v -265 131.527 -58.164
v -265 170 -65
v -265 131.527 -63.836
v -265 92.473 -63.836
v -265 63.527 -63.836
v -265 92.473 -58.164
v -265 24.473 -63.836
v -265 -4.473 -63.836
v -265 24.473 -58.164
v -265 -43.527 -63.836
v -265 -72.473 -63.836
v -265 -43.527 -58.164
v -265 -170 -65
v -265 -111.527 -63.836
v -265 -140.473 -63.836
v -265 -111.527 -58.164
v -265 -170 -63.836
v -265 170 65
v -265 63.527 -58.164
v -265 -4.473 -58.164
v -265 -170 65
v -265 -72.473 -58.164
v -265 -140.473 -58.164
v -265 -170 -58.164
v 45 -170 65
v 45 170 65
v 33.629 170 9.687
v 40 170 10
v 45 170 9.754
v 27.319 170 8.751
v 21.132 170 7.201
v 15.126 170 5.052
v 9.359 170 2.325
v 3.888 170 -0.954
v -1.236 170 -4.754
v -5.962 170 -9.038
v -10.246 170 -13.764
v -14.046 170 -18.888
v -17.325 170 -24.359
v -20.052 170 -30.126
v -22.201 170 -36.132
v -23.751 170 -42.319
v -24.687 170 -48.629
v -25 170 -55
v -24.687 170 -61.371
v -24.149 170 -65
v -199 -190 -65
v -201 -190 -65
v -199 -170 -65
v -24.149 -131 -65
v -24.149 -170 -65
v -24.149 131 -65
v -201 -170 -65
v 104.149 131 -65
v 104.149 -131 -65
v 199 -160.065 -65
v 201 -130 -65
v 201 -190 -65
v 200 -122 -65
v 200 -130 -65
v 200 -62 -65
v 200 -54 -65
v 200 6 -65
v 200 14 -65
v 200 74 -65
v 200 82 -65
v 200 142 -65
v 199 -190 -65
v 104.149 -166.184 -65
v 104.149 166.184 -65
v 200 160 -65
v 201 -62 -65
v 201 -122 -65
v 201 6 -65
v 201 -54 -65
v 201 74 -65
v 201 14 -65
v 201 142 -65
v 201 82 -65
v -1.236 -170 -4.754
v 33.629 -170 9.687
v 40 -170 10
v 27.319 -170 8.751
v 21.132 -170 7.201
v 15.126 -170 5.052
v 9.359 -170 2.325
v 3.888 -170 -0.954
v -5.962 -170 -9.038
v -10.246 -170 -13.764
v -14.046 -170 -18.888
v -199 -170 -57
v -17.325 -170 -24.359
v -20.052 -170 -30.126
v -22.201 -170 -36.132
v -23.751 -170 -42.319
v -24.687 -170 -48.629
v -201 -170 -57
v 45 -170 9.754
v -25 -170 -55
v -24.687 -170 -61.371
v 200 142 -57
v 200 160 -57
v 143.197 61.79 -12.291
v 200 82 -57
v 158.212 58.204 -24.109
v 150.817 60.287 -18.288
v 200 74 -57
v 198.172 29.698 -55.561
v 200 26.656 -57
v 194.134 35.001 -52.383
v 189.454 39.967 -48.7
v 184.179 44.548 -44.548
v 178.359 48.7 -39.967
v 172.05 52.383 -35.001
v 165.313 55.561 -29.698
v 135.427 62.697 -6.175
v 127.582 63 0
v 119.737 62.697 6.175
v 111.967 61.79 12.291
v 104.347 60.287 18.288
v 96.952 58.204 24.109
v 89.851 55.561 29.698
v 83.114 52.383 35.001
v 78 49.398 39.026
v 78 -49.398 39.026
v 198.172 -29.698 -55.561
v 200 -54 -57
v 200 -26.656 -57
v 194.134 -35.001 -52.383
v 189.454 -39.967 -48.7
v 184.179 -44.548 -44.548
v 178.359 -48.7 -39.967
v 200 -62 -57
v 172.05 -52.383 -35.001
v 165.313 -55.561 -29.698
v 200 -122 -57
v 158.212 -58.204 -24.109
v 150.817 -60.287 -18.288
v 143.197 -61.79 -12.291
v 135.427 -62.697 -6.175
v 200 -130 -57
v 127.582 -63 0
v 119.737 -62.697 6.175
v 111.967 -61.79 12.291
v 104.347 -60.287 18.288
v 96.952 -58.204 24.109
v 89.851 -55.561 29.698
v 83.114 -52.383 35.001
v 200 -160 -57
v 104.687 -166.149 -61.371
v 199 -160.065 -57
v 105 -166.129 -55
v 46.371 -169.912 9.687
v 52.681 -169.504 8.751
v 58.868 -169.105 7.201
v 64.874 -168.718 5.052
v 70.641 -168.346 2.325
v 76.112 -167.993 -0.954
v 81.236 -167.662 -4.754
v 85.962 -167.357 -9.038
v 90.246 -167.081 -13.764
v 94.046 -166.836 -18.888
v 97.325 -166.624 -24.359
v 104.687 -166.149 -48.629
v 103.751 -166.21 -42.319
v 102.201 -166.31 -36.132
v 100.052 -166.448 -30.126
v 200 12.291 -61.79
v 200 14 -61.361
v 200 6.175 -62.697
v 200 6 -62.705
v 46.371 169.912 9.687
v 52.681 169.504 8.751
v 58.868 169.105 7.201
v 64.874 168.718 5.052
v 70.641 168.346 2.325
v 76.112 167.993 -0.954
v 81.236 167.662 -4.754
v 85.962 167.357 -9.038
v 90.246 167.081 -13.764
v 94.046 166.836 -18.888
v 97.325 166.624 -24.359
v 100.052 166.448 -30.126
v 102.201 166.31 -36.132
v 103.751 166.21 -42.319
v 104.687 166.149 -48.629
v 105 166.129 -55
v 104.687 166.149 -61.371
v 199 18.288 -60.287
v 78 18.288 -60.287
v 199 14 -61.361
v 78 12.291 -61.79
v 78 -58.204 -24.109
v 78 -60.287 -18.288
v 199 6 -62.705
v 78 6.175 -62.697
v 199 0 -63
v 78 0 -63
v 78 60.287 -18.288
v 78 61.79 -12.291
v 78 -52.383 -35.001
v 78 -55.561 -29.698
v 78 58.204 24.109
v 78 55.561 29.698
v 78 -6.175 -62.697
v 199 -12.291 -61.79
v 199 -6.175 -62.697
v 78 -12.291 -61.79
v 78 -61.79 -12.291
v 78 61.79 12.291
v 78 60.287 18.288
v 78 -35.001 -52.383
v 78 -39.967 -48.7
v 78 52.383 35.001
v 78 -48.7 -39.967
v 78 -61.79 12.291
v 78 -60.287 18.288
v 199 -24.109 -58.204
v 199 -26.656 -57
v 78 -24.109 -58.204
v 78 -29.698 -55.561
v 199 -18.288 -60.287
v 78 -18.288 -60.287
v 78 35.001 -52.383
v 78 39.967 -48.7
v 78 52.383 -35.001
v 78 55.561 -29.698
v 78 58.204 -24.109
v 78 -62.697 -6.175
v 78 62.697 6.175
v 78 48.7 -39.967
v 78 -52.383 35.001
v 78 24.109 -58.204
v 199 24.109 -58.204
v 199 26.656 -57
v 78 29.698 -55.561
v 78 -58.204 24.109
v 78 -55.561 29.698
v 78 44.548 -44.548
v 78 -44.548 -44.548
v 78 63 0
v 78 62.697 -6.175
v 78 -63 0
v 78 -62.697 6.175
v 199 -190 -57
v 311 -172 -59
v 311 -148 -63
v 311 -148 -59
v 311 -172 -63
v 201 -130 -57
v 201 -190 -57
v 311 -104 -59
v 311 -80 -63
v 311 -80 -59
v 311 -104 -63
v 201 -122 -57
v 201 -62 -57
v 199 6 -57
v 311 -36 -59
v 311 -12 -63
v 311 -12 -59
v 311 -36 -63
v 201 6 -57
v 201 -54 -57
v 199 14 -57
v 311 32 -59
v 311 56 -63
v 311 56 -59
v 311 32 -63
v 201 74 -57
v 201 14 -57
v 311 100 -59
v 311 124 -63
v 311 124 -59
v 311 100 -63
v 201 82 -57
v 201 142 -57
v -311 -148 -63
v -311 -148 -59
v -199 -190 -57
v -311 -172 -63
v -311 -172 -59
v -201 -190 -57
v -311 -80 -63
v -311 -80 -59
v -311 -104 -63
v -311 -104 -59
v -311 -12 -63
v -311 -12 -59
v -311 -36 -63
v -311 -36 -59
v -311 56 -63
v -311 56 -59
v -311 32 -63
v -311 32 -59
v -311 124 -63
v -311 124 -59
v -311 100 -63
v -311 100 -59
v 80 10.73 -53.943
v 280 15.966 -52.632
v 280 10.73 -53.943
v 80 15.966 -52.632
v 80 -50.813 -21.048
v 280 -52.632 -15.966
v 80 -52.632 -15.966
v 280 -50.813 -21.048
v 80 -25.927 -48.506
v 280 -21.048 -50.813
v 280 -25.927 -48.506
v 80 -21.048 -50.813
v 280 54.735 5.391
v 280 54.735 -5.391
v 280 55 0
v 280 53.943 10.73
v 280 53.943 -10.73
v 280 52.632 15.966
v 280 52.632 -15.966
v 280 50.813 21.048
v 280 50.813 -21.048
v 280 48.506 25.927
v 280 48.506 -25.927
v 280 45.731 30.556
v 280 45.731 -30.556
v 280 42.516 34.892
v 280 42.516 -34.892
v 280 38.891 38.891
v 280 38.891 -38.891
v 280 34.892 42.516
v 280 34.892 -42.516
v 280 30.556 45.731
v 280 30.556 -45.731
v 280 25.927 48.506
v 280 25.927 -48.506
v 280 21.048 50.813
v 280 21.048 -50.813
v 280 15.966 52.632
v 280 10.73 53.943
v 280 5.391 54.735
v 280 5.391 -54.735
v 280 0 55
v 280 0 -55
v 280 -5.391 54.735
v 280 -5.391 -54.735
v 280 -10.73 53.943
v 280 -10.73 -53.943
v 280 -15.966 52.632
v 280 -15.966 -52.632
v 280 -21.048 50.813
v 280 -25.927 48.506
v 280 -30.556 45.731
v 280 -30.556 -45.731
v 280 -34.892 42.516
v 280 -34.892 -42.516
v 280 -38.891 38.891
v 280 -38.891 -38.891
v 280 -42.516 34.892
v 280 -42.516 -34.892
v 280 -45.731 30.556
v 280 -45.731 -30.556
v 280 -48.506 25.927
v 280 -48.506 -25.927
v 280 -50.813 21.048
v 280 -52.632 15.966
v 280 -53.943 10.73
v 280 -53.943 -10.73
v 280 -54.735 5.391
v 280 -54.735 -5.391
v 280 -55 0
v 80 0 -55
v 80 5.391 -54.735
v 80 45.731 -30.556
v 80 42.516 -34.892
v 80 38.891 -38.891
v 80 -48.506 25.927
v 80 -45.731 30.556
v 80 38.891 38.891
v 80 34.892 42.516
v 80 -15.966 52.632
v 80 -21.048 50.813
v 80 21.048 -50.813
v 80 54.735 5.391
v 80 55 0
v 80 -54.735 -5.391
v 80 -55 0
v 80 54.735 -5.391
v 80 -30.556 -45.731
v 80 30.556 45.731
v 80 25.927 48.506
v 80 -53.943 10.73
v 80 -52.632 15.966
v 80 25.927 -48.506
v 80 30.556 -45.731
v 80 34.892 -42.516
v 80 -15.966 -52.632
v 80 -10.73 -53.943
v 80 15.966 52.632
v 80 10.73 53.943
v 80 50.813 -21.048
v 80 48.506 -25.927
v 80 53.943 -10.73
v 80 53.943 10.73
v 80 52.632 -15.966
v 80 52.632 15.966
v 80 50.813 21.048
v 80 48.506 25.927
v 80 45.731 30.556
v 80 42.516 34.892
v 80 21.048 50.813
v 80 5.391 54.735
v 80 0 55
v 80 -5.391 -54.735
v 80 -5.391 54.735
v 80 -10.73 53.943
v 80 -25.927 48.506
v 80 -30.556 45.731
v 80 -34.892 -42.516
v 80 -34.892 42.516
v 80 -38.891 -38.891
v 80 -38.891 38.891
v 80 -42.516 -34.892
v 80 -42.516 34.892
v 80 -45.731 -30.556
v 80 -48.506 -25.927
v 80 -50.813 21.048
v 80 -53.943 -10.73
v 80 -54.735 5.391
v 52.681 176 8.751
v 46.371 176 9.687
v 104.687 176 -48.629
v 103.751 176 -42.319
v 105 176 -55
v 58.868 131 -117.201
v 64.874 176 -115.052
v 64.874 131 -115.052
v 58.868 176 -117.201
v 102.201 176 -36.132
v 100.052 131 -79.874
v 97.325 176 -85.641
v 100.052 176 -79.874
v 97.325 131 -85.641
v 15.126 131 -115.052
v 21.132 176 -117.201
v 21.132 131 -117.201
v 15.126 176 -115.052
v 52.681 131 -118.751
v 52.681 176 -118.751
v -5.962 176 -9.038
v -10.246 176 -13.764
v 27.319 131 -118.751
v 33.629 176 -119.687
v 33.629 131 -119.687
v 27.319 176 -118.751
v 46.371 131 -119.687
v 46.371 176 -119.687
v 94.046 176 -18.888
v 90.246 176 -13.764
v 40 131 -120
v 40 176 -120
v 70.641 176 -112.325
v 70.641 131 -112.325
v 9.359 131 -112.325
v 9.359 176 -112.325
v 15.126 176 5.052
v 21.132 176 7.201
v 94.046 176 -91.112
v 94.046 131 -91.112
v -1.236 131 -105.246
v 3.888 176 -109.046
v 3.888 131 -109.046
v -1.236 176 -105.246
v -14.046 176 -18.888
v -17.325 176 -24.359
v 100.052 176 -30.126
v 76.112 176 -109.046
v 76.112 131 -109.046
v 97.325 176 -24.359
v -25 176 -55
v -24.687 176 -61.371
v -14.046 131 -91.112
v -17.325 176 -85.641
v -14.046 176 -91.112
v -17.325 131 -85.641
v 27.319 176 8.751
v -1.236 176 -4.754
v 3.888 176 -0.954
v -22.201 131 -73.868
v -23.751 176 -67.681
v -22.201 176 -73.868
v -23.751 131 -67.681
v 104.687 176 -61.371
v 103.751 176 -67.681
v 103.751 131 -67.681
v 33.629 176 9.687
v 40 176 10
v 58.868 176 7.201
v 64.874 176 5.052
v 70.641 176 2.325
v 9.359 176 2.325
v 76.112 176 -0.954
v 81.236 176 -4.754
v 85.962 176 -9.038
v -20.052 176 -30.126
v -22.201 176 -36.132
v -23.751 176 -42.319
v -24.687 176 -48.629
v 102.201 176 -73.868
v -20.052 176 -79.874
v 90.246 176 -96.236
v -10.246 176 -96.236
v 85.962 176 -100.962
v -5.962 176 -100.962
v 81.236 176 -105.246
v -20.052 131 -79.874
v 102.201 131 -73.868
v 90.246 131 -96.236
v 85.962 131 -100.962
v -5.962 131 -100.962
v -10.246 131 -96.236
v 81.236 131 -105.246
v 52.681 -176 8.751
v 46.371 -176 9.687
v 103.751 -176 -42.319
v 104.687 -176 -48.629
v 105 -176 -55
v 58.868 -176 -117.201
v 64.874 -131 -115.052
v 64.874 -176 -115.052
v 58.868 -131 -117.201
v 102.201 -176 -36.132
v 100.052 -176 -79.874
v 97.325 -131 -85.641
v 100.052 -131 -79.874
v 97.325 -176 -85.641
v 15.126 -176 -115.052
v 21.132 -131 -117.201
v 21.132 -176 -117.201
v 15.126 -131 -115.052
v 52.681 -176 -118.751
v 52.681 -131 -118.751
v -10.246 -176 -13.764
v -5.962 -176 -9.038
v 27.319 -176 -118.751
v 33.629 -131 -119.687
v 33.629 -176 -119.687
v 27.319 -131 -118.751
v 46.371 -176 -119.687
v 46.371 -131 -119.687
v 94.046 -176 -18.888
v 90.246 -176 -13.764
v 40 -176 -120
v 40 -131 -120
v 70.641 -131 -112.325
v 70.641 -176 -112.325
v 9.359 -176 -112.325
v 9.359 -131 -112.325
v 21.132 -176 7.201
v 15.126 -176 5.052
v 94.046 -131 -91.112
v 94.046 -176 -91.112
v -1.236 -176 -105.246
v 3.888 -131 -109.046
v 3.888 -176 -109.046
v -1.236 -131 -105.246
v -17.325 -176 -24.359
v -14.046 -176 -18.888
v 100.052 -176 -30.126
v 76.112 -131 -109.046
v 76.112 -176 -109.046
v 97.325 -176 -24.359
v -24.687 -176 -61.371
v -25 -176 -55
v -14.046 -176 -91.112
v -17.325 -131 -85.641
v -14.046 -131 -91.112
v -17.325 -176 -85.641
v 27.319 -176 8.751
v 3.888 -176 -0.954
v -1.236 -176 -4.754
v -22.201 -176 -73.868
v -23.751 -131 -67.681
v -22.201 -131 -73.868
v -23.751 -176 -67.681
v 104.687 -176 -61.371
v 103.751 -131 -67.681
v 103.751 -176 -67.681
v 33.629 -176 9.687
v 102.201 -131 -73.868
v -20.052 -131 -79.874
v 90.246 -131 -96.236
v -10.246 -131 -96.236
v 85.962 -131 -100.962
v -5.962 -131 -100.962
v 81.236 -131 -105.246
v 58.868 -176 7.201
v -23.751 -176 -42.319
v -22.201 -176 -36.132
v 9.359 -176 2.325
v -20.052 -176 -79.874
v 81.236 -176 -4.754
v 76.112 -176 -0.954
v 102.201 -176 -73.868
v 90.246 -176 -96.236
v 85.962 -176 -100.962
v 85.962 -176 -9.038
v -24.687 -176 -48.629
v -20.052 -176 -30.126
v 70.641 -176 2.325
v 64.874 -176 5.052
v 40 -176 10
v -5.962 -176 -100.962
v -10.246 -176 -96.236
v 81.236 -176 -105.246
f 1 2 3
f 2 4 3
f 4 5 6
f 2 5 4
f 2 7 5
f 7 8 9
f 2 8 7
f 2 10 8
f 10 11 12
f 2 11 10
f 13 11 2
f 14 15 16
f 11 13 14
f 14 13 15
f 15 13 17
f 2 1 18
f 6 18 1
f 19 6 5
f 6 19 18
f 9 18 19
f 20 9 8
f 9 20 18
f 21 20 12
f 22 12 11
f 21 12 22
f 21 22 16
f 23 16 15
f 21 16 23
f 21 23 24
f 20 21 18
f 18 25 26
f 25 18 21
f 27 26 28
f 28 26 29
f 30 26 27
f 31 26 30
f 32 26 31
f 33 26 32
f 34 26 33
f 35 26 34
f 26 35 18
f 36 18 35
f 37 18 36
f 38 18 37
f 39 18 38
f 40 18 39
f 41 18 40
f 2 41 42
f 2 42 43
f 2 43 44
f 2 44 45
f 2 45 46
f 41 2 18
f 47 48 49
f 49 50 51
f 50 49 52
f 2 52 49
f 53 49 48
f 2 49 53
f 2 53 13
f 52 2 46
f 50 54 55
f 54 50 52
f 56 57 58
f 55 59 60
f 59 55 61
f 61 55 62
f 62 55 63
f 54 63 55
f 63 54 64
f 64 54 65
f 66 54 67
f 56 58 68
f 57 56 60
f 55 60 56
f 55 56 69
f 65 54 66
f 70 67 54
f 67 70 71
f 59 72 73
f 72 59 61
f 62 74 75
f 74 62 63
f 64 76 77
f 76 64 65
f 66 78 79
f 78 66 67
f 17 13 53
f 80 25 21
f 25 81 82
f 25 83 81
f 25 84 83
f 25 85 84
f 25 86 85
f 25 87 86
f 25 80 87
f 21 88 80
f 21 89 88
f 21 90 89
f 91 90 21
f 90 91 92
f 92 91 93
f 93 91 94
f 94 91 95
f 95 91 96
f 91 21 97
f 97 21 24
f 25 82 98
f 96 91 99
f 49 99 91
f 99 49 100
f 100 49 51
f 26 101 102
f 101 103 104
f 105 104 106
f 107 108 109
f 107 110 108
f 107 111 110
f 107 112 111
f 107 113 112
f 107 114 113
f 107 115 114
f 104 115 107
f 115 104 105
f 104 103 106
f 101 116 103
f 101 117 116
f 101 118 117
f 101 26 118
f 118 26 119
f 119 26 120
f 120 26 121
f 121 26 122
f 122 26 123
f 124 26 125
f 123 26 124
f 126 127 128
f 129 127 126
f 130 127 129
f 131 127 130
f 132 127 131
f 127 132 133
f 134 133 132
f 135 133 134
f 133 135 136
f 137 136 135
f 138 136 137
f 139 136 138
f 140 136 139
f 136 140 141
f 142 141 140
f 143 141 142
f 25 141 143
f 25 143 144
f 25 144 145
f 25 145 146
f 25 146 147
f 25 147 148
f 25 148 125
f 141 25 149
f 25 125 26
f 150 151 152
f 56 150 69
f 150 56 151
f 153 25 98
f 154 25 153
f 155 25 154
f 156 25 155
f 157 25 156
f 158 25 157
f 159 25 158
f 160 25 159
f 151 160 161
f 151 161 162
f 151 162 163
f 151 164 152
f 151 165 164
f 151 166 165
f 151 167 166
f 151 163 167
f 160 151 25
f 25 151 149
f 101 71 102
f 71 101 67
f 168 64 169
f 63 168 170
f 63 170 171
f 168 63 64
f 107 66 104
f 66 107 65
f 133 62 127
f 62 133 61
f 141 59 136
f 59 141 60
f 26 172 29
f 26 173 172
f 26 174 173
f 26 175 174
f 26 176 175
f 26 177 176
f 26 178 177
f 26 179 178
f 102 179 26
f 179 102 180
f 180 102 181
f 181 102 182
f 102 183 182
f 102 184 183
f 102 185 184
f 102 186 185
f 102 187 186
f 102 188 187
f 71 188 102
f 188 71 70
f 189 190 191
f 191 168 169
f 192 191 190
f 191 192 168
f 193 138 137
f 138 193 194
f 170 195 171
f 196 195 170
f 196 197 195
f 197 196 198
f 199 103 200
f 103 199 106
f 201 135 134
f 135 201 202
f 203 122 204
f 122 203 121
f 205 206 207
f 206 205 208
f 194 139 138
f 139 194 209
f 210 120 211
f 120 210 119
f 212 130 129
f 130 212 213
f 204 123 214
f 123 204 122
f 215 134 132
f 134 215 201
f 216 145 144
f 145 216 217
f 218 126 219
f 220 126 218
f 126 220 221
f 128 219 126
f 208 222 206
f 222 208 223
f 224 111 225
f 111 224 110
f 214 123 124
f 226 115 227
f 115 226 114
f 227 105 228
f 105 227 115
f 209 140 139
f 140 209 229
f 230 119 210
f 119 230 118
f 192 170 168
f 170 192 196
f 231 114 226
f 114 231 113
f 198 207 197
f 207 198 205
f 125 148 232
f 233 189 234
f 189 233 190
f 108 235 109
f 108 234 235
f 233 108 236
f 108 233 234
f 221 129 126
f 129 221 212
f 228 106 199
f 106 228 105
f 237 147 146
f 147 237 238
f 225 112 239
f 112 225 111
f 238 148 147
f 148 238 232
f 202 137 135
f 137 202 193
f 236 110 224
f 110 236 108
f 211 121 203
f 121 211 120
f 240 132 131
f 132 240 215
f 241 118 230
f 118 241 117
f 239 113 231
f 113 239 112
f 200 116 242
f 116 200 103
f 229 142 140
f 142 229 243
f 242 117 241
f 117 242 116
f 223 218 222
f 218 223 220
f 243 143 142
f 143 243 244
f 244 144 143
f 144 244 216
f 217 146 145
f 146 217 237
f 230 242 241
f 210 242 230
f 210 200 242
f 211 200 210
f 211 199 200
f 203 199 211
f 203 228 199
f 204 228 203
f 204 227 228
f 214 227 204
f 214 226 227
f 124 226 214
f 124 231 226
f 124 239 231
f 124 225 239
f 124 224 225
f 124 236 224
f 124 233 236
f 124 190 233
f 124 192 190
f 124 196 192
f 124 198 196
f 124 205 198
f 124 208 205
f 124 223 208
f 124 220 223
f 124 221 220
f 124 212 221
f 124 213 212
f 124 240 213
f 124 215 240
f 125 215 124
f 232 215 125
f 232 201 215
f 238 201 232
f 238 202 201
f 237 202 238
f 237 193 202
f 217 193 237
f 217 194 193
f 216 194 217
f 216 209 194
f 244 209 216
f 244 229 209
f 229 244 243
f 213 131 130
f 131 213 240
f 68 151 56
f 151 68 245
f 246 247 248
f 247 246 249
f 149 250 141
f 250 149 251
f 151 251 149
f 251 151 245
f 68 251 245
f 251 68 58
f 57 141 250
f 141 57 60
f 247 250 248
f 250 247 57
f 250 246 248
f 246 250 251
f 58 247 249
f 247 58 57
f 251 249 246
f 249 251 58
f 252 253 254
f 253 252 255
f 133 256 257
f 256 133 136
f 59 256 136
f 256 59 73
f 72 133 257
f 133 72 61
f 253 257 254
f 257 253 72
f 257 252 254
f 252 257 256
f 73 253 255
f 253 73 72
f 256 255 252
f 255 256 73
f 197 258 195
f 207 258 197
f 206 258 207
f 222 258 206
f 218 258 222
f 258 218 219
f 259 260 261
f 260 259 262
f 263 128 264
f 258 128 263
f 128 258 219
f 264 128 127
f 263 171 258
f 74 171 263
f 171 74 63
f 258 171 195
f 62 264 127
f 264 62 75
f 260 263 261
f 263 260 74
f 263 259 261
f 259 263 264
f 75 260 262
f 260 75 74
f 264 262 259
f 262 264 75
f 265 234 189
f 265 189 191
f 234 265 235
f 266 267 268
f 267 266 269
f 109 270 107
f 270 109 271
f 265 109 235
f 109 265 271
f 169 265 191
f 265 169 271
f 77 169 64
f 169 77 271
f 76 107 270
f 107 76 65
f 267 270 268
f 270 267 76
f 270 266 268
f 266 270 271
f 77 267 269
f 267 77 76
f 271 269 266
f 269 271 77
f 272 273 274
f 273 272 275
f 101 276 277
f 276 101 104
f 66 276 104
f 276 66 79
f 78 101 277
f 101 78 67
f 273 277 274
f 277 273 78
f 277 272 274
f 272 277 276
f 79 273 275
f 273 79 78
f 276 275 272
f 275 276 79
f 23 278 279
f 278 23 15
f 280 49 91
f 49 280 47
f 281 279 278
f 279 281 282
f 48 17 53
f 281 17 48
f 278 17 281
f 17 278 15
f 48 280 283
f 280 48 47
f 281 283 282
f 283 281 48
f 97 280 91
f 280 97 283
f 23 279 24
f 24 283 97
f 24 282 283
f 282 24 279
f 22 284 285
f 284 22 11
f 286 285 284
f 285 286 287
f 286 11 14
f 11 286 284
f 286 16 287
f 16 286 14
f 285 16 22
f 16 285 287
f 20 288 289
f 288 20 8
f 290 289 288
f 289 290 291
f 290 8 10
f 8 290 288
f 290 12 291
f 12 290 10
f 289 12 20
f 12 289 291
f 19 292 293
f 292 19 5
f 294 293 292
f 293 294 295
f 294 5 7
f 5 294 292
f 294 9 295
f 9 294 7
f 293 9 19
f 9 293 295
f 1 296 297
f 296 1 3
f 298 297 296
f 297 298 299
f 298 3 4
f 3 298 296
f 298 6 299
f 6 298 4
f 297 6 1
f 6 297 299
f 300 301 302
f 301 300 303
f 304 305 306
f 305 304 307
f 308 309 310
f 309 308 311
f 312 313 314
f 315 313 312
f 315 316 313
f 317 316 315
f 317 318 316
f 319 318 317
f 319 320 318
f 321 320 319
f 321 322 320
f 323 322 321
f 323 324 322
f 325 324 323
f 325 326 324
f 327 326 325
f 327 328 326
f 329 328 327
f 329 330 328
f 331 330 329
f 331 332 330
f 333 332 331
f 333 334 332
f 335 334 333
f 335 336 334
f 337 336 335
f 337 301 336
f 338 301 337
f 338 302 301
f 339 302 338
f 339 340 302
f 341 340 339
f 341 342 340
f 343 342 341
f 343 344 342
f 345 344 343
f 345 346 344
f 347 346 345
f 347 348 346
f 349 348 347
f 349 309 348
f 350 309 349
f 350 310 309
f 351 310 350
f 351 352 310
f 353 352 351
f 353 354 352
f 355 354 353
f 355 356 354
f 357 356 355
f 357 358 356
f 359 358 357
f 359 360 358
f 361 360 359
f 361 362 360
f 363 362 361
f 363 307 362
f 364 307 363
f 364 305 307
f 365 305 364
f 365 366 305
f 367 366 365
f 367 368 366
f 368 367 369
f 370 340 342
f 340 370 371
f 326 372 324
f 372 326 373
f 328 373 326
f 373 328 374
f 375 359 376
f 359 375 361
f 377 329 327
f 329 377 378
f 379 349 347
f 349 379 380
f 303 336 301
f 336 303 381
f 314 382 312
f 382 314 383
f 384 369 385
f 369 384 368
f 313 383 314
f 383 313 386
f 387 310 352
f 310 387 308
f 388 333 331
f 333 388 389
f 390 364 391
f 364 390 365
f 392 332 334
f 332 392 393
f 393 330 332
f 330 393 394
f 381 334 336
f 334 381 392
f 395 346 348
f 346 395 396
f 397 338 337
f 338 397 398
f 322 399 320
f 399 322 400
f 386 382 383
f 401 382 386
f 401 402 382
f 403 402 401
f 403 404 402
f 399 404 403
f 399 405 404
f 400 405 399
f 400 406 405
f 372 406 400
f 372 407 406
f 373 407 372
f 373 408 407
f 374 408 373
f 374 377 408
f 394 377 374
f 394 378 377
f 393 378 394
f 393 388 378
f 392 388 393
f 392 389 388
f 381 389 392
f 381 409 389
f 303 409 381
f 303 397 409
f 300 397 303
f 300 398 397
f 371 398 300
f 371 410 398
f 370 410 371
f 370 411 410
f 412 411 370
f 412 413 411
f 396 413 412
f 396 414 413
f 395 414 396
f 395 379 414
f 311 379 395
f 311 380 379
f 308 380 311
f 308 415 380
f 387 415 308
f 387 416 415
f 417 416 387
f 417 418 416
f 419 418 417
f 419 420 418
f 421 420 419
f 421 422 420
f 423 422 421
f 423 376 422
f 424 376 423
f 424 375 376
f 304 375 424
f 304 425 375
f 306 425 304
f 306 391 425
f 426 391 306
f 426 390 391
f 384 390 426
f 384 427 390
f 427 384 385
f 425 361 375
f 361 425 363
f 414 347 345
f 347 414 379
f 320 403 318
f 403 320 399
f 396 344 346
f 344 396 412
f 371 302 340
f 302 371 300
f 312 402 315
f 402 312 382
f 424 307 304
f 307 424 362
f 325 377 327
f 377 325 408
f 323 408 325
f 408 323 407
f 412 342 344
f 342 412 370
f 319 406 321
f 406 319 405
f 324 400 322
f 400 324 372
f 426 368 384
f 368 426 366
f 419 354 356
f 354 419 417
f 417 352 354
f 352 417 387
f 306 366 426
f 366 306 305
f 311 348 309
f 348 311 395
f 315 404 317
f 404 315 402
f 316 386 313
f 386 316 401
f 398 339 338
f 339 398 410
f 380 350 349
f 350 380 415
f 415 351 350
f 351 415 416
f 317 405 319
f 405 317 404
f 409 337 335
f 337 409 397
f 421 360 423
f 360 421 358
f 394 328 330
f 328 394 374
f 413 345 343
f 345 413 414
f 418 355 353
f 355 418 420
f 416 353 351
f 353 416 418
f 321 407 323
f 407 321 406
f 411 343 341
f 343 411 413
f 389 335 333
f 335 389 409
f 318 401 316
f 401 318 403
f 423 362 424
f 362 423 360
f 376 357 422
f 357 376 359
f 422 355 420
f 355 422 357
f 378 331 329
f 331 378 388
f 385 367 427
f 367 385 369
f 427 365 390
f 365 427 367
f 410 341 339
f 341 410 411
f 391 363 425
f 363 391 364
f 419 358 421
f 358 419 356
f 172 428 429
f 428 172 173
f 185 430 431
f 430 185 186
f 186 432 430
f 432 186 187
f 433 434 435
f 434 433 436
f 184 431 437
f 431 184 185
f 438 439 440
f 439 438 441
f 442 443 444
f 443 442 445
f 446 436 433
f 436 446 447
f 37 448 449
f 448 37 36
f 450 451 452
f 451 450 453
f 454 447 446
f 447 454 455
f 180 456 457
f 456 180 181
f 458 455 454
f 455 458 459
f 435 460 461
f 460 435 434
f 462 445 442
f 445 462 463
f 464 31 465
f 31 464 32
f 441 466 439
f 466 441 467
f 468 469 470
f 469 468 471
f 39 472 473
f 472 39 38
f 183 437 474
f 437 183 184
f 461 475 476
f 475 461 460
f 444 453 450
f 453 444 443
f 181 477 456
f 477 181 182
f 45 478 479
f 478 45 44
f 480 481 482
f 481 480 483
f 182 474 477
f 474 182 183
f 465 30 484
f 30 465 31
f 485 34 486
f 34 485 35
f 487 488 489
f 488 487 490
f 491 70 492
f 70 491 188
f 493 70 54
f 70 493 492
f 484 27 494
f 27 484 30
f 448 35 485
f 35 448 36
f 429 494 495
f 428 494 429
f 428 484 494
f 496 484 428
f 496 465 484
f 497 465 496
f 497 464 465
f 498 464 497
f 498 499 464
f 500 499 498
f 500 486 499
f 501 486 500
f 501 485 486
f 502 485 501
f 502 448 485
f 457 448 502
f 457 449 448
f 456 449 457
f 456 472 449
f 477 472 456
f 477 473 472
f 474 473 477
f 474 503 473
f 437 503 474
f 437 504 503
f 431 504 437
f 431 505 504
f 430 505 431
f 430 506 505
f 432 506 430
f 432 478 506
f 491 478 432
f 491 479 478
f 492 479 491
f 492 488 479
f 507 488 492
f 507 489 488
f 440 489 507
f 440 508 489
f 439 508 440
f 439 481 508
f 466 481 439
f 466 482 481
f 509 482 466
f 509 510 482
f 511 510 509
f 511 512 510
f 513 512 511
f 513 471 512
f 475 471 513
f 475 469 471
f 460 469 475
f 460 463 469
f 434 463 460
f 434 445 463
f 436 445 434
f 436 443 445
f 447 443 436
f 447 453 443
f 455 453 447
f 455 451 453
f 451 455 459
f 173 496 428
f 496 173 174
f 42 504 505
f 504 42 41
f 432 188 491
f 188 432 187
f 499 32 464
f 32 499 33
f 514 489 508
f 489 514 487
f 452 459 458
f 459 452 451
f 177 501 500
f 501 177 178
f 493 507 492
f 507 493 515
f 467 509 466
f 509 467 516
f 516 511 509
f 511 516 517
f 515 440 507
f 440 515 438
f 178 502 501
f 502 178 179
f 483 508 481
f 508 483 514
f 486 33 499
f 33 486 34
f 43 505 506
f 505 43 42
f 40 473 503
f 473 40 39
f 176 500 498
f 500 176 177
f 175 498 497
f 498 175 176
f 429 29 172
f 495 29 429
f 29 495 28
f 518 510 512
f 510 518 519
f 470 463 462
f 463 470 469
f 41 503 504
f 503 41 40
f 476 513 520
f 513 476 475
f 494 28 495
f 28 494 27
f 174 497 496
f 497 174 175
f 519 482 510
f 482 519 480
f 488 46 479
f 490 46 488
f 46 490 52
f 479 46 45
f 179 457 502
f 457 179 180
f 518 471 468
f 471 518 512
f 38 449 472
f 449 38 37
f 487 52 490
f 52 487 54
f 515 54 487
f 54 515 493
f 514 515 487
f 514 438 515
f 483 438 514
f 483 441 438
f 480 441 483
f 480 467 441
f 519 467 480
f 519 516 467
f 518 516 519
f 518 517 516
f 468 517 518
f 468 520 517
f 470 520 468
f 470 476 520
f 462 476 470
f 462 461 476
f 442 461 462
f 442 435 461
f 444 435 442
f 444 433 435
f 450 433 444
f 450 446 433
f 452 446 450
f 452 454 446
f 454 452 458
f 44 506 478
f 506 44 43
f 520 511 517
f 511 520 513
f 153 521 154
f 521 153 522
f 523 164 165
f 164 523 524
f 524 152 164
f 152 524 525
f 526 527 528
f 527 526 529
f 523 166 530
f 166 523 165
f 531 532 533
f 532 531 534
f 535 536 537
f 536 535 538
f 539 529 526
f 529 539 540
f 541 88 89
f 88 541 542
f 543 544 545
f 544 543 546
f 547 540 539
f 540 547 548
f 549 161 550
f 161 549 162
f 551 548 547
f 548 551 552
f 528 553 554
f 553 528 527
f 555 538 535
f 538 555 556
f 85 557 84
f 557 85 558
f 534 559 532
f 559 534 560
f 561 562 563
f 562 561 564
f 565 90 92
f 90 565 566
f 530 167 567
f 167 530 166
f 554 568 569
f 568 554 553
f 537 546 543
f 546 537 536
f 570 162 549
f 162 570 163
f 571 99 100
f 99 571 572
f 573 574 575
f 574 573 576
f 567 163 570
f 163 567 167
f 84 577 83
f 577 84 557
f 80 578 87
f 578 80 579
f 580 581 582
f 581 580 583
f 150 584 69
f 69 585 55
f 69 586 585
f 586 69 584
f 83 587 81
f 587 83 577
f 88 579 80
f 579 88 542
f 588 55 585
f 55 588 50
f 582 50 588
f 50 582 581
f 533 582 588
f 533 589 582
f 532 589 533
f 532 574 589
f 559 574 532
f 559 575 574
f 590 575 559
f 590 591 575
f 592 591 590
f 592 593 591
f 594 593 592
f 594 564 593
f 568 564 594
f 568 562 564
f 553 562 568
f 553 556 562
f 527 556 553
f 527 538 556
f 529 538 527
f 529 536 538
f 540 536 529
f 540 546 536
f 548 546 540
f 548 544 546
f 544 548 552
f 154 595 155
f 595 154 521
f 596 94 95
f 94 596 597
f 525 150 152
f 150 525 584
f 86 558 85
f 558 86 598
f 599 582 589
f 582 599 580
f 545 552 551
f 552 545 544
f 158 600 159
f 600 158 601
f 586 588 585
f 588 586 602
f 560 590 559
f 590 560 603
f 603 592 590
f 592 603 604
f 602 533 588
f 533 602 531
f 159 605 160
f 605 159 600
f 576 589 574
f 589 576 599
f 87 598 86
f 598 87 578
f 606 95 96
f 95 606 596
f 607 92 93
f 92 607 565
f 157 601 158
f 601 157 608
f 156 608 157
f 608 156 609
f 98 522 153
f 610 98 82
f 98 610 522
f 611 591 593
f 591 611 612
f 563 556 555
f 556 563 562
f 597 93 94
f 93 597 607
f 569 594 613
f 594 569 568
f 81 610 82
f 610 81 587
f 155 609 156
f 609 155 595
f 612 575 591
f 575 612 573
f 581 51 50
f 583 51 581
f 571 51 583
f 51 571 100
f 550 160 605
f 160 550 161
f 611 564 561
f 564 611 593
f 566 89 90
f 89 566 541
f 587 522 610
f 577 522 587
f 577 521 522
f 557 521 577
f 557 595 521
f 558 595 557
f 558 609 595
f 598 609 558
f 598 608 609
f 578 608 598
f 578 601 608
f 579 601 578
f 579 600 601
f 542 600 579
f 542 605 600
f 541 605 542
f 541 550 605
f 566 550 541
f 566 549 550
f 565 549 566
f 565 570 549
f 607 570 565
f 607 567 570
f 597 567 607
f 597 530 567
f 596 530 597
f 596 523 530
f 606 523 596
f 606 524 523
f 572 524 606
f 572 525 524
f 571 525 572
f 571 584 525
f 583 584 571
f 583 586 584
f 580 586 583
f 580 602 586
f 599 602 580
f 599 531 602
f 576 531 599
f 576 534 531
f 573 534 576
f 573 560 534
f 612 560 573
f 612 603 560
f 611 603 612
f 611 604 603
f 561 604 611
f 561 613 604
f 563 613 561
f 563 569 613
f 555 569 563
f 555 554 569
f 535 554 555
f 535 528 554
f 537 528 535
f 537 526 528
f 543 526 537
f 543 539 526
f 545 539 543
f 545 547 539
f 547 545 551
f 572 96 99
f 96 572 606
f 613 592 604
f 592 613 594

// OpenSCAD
// =====================================================================
// 15kg Robowar Bot — Parametric Concept CAD
// Drum spinner + full wedge shell + front & rear forks (invertible)
// =====================================================================
// This is a STARTING PARAMETRIC MODEL for layout/dimension checking —
// not a manufacturing-ready file. Refine in Fusion 360 / SolidWorks /
// Onshape once you finalize real component dimensions from your BOM.
// Edit the variables below and re-render to iterate quickly.
// Competition envelope check: must fit 750 x 750 x 1000 mm at match start.
// =====================================================================

$fn = 64; // smoothness of curved surfaces

// ---------------- CHASSIS ----------------
chassis_length   = 400;  // mm, front-to-back
chassis_width    = 340;  // mm, side-to-side
chassis_height   = 130;  // mm, body height (excludes wheels below deck)
wedge_taper      = 90;   // mm, how far back the front wedge taper runs
shell_thickness  = 4;    // mm, shell wall thickness (visual only here)

// ---------------- DRUM WEAPON ----------------
drum_diameter    = 110;  // mm
drum_length      = 200;  // mm, spans most of the chassis width
drum_offset_x    = chassis_length/2 - 20; // drum sits near the front
drum_offset_z    = chassis_height/2 + 10; // drum axis height

// ---------------- WHEELS ----------------
wheel_diameter   = 130;  // mm
wheel_width      = 45;   // mm
wheel_offset_x   = 40;   // mm behind center, fore-aft position
wheel_offset_z   = -chassis_height/2 + 10; // wheels drop below chassis belly

// ---------------- FORKS ----------------
fork_length      = 110;  // mm, how far forks extend beyond the shell
fork_width       = 60;   // mm, width of each fork blade
fork_thickness   = 8;    // mm
fork_count       = 5;    // number of fork tines per end
fork_gap         = 8;    // mm gap between tines

// =====================================================================
// MODULES
// =====================================================================

module wedge_shell() {
    // Body: a box with the front third tapered into a wedge via hull()
    hull() {
        // Rear block (full height)
        translate([-chassis_length/2 + wedge_taper, 0, 0])
            cube([chassis_length - wedge_taper, chassis_width, chassis_height], center = true);
        // Front wedge edge (low, thin leading edge)
        translate([chassis_length/2 - 2, 0, -chassis_height/2 + 4])
            cube([4, chassis_width - 20, 8], center = true);
    }
}

module drum_weapon() {
    color("OrangeRed")
    rotate([0, 90, 0])
        translate([0, 0, drum_offset_x])
            cylinder(h = drum_length, d = drum_diameter, center = true);
}

module drum_cutout_shroud() {
    // Simple containment shroud: a partial cylinder cavity around the drum,
    // open only at the front-facing arc.
    color("DimGray", 0.5)
    rotate([0, 90, 0])
        translate([0, 0, drum_offset_x])
            cylinder(h = drum_length + 4, d = drum_diameter + 16, center = true);
}

module wheel(mirror_y = 1) {
    color("Black")
    translate([wheel_offset_x, mirror_y * (chassis_width/2 - wheel_width/2 + 6), wheel_offset_z])
        rotate([90, 0, 0])
            cylinder(h = wheel_width, d = wheel_diameter, center = true);
}

module fork_set(x_pos, point_dir = 1) {
    // A row of angled tines forming a fork/spike rake at one end of the bot
    color("SlateGray")
    for (i = [0 : fork_count - 1]) {
        y = -chassis_width/2 + 10 + i * (fork_width + fork_gap);
        translate([x_pos, y, -chassis_height/2 + fork_thickness/2])
            hull() {
                cube([2, fork_width, fork_thickness], center = true);
                translate([point_dir * fork_length, fork_width/2 - fork_width/2, 0])
                    cube([2, fork_width * 0.4, fork_thickness * 0.5], center = true);
            }
    }
}

// =====================================================================
// ASSEMBLY
// =====================================================================

module robot_assembly() {
    difference() {
        color("Gainsboro", 0.85) wedge_shell();
        drum_cutout_shroud();
    }
    drum_weapon();
    wheel(1);
    wheel(-1);
    fork_set(chassis_length/2, 1);   // front forks
    fork_set(-chassis_length/2, -1); // rear forks
}

robot_assembly();

// =====================================================================
// Quick footprint check against the 750 x 750 x 1000 mm rule envelope
// (printed to console when rendered from the OpenSCAD GUI / CLI)
// =====================================================================
echo("Chassis length (mm): ", chassis_length + fork_length*2);
echo("Chassis width (mm): ", chassis_width);
echo("Chassis height (mm): ", chassis_height);
echo("Rule limit (mm): 750 x 750 x 1000 - check these stay under that.");
